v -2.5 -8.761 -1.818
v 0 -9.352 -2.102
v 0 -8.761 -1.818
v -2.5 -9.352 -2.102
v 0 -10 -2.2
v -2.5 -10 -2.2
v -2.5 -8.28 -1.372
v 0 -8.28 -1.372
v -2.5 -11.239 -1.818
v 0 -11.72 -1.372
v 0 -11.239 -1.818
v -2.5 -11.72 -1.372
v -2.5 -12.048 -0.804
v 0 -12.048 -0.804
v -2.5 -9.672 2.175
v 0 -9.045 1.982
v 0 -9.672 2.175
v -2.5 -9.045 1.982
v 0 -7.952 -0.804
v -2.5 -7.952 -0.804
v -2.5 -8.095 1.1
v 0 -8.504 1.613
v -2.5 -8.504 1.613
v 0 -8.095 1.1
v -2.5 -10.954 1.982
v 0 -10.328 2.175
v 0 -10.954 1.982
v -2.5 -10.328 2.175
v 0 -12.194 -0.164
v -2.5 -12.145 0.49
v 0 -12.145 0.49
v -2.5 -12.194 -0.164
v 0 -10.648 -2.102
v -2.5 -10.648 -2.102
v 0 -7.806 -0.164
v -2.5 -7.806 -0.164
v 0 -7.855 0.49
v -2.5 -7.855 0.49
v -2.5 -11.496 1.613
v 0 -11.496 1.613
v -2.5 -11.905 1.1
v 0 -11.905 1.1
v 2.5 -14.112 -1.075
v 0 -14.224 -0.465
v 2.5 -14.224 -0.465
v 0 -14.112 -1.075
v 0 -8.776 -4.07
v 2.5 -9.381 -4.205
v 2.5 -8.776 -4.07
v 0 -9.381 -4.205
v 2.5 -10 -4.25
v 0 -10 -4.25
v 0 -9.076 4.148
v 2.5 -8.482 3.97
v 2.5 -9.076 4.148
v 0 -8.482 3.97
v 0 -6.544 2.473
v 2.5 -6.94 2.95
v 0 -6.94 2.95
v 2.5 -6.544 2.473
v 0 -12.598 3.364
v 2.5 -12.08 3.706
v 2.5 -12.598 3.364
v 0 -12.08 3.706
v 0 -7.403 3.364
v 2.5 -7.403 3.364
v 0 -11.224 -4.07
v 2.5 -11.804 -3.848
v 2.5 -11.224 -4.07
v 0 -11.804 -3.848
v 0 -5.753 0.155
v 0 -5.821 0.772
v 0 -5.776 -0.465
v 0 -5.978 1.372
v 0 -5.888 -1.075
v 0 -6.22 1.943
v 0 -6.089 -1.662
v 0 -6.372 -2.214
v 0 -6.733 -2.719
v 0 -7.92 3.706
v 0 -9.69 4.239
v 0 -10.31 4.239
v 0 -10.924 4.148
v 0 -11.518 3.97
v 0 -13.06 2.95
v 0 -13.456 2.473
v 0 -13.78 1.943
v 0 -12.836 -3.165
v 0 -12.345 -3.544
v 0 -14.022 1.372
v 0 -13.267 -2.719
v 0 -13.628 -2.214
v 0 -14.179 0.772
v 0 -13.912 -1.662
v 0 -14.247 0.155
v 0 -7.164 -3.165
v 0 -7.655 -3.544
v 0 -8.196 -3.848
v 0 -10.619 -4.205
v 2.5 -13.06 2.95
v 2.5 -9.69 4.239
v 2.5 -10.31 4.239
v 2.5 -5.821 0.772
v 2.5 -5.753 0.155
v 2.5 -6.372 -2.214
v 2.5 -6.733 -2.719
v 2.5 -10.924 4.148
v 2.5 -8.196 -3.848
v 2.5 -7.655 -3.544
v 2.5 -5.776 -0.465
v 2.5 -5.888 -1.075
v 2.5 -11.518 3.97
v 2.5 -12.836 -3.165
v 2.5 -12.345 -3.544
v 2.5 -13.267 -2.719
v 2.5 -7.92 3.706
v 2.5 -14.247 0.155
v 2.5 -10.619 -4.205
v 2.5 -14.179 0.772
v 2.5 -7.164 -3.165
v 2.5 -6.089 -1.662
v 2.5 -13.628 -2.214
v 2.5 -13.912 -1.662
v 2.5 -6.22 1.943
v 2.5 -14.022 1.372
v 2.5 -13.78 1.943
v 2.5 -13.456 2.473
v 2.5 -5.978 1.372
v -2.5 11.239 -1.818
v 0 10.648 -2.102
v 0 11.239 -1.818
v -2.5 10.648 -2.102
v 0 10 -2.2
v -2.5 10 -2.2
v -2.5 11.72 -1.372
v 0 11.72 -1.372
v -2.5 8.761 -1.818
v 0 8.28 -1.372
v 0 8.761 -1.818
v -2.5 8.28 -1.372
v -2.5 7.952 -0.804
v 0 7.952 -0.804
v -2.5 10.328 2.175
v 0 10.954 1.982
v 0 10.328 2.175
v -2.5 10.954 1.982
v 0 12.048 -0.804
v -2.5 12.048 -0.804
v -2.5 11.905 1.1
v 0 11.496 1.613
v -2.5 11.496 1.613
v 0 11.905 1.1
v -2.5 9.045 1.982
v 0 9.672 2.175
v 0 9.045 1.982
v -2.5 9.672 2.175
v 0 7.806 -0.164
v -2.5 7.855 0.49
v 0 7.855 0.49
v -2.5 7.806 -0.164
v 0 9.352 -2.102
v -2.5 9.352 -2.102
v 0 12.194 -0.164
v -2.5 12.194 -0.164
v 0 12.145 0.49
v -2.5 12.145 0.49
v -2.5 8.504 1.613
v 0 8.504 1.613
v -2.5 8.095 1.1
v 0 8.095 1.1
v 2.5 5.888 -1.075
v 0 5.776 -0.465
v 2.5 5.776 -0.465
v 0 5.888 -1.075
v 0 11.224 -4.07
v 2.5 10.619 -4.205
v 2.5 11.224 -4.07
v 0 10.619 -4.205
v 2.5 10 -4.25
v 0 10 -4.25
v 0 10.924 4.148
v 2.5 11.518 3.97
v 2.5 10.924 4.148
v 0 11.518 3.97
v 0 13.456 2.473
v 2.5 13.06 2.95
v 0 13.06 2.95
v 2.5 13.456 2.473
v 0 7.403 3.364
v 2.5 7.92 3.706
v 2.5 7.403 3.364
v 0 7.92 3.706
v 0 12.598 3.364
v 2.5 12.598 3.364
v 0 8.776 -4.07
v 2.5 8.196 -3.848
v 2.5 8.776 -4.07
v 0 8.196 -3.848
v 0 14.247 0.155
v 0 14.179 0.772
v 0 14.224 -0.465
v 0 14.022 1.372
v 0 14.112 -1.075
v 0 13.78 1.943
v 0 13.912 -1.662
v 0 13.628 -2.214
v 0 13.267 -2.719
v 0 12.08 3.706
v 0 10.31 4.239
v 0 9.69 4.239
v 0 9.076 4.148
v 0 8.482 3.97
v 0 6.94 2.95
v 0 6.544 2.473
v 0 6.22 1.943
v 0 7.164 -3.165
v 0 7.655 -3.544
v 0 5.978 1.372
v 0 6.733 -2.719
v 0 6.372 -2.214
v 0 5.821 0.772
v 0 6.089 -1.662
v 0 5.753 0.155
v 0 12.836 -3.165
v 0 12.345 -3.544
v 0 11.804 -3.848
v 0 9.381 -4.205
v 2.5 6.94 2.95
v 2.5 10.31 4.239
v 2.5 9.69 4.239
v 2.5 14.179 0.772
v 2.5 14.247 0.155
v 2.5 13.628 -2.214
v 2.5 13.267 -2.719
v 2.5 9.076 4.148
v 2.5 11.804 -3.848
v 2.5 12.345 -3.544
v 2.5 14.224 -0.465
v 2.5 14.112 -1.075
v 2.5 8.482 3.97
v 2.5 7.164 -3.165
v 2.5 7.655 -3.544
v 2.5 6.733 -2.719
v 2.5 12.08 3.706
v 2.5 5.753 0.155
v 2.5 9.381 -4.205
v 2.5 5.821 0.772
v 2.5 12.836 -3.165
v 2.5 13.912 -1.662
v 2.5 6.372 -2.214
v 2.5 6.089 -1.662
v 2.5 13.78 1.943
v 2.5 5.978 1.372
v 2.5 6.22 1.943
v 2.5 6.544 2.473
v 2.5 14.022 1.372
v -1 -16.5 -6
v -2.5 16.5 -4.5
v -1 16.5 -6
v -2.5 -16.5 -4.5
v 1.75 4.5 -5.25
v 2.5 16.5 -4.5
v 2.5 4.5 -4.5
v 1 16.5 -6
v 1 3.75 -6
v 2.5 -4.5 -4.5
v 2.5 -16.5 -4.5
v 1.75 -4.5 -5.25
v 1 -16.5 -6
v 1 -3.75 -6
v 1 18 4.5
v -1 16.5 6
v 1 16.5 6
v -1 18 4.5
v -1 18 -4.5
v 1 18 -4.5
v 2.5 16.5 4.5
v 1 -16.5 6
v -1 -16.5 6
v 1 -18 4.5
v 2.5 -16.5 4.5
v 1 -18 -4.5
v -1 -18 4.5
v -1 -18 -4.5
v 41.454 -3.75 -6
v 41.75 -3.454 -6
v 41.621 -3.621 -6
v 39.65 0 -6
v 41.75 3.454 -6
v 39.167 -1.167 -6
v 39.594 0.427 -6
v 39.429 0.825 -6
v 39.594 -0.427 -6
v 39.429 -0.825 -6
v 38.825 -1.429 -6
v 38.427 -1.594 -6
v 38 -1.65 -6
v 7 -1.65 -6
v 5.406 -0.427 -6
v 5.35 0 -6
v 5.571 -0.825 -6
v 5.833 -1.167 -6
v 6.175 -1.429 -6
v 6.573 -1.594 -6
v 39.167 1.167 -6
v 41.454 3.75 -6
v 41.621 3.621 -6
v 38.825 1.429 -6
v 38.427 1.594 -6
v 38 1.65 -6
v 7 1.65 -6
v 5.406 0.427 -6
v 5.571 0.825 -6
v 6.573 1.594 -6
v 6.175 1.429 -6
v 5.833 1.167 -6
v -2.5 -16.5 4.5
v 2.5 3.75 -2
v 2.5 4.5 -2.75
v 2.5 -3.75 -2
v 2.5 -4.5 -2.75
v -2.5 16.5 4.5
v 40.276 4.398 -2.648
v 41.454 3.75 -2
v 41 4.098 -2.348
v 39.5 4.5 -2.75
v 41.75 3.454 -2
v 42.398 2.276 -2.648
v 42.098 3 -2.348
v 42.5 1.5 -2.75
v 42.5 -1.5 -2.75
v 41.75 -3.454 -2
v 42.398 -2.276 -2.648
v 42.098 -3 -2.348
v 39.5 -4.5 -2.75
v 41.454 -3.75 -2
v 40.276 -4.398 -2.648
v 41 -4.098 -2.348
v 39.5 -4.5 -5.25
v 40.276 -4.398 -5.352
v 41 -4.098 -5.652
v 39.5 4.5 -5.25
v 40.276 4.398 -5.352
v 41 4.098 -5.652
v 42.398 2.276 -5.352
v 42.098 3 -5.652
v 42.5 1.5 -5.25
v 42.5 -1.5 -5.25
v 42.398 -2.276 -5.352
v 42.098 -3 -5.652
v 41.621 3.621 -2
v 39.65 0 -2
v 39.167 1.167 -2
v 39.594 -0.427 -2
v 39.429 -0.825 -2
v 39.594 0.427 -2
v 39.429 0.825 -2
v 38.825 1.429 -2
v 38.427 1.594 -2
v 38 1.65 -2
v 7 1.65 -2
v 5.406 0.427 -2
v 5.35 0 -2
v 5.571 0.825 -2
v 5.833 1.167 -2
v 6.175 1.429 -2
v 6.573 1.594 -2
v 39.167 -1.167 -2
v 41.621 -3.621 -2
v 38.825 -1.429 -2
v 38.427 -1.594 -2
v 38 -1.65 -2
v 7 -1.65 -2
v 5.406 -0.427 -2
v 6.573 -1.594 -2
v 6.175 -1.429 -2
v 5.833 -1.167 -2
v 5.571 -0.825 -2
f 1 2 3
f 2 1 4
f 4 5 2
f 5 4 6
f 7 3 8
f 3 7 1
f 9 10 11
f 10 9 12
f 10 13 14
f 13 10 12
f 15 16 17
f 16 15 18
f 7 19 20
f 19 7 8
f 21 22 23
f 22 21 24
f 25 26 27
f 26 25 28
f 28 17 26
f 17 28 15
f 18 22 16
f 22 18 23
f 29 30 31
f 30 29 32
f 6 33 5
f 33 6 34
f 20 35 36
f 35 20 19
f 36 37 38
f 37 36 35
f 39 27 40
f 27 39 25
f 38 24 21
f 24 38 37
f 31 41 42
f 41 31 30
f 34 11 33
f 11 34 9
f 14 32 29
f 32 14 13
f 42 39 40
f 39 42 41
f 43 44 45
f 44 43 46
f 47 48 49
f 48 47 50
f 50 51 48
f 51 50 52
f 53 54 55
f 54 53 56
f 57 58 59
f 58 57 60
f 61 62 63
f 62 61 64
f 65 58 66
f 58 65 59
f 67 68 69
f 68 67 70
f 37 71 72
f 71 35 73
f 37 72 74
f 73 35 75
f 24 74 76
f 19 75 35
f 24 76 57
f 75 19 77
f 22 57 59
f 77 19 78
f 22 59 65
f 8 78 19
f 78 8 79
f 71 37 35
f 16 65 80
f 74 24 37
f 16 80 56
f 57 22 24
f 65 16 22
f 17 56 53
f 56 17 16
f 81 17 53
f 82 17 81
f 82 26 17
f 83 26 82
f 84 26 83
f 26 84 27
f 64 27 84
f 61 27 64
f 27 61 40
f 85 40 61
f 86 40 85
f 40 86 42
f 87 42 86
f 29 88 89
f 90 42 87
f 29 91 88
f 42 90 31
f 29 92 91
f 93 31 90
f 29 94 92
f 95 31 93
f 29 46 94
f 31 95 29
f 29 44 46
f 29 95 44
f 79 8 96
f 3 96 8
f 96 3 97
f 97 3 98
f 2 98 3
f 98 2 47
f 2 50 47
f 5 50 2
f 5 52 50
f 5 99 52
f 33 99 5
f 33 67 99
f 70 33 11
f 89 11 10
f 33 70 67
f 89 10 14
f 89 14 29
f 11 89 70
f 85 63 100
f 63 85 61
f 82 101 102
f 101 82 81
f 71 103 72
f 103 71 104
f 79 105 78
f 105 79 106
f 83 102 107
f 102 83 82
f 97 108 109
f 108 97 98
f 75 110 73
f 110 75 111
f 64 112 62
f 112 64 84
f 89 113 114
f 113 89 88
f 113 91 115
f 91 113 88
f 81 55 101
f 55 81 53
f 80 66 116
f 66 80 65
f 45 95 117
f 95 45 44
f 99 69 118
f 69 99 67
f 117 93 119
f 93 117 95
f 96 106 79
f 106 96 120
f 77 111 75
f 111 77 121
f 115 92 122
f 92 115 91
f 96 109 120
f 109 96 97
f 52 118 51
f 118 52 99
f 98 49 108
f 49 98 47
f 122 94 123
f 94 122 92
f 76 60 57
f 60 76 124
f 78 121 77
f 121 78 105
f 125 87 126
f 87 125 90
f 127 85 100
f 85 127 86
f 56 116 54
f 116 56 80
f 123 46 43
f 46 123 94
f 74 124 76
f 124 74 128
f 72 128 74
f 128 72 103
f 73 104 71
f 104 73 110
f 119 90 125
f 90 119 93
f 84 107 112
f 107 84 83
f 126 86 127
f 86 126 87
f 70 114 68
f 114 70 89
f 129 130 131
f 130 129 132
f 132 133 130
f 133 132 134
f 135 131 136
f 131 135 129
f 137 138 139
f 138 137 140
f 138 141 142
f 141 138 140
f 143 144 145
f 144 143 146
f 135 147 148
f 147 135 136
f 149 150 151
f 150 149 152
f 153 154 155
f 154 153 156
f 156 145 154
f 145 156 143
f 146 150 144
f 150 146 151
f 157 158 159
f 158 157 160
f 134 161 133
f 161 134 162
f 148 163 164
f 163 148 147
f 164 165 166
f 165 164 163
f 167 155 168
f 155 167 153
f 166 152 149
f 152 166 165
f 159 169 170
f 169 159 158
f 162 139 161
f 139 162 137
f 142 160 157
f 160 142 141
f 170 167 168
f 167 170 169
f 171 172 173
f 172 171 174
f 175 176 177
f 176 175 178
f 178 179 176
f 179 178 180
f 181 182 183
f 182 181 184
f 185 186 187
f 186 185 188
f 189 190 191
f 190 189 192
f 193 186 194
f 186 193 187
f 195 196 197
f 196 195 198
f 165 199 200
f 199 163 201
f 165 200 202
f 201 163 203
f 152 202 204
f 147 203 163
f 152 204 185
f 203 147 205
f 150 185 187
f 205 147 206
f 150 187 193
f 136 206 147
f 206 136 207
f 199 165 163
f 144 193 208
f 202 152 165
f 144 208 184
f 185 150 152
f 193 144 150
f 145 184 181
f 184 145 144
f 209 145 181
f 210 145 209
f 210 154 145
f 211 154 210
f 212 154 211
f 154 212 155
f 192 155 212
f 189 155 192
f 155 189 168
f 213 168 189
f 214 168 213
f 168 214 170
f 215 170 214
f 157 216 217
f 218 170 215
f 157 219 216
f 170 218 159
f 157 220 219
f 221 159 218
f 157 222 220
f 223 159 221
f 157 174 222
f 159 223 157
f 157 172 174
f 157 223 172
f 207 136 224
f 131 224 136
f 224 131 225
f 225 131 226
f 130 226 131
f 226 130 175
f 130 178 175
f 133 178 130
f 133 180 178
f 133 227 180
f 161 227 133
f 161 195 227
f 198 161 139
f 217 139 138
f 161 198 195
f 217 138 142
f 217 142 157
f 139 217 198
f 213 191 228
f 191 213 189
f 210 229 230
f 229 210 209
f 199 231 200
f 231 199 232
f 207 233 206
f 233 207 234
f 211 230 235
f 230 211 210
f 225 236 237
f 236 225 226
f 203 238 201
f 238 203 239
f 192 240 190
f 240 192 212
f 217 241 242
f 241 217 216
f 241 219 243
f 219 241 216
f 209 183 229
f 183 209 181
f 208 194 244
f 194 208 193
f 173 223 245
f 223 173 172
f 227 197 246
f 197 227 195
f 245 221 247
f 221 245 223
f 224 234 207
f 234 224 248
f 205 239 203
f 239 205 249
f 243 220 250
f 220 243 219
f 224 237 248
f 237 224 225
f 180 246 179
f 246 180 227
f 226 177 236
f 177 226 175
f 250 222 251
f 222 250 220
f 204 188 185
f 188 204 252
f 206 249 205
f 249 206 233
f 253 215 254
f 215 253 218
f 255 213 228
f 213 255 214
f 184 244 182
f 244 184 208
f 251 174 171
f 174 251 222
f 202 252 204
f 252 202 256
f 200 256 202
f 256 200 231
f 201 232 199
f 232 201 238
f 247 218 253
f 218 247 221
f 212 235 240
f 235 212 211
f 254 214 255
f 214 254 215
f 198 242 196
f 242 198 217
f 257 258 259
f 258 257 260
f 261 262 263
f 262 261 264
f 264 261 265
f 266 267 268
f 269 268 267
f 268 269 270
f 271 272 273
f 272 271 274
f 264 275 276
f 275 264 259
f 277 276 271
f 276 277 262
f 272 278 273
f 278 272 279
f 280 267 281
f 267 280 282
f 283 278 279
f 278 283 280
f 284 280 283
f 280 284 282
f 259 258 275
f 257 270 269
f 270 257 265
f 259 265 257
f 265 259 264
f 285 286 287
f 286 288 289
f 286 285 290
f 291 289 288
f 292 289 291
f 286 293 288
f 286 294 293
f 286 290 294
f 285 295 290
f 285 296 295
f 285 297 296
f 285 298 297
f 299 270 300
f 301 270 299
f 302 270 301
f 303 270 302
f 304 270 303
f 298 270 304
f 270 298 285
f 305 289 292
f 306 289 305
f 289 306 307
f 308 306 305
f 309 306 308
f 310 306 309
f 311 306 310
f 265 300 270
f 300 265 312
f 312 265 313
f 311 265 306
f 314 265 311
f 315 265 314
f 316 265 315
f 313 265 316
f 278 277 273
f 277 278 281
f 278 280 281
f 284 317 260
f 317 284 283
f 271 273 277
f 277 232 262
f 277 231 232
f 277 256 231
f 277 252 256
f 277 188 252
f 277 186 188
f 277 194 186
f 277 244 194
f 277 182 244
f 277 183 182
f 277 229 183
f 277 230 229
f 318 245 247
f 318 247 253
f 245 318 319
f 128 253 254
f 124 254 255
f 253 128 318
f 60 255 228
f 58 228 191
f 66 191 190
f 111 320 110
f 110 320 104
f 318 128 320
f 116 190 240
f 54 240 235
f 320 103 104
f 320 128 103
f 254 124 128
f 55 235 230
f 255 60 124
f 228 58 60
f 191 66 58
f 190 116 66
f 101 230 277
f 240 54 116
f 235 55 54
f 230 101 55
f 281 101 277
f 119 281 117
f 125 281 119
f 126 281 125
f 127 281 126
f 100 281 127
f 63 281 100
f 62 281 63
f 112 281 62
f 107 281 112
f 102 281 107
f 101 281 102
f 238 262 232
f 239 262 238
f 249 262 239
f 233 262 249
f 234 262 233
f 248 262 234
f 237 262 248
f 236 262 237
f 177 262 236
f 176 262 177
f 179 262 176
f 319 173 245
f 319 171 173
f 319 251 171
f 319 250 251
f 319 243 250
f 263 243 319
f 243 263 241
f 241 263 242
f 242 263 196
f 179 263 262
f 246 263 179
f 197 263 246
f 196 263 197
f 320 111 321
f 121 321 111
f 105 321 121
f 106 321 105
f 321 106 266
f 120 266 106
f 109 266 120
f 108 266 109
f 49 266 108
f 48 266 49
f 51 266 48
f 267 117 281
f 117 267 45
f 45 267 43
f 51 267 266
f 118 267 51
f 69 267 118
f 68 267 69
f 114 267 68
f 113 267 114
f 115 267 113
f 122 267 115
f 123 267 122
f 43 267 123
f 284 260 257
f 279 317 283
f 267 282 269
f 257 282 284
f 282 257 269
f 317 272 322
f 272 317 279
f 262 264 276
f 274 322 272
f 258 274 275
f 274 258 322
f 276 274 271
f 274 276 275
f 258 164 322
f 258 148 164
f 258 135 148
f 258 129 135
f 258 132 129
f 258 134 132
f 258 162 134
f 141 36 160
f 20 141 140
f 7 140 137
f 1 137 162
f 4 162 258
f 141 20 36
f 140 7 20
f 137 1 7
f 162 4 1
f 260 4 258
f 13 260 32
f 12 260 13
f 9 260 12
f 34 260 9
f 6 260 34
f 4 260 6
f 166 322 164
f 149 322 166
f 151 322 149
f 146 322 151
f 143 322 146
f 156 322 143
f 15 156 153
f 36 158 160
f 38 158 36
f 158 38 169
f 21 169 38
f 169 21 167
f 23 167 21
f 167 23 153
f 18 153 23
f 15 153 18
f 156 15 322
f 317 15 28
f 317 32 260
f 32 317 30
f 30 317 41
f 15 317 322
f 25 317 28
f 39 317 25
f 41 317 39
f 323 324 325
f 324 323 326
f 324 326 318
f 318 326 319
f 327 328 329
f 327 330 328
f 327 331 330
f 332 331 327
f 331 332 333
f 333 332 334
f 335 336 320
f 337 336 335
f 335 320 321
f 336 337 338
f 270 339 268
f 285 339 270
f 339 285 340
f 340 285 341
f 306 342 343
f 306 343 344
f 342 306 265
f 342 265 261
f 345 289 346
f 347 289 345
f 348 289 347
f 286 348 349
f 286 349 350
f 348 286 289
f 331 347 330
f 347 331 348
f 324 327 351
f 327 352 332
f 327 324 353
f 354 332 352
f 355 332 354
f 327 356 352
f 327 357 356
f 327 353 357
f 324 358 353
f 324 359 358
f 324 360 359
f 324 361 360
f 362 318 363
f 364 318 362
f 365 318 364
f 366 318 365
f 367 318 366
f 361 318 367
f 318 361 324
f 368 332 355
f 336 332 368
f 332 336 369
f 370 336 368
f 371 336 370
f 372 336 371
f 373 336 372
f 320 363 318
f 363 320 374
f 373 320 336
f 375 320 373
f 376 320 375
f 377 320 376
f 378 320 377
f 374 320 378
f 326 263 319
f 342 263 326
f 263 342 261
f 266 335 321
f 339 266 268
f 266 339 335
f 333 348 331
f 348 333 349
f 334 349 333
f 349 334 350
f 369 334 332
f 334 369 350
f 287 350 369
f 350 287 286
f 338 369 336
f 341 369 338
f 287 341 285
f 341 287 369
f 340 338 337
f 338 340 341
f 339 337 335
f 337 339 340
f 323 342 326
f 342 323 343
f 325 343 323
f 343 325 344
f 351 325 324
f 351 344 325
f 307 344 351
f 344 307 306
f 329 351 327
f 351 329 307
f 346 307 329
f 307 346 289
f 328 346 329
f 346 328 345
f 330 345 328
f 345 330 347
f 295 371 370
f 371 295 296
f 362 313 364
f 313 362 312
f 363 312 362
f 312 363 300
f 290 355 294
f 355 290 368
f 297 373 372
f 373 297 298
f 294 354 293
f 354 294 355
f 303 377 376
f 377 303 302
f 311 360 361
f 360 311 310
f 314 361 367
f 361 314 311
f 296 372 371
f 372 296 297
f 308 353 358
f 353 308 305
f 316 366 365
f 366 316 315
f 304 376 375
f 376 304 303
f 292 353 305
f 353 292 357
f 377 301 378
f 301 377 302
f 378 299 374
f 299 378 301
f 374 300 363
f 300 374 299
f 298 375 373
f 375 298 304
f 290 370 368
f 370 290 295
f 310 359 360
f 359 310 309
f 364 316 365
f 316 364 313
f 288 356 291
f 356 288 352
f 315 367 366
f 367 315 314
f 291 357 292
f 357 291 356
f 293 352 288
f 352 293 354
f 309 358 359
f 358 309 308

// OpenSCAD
//  Characters    Behavior
//     //            ignore, comment
//     $fa           minimum angle
//     *             disable
//     !             show only
//     #             highlight / debug
//     %             transparent / background
// http://www.openscad.org/cheatsheet/index.html

include <BOSL/constants.scad>
use <BOSL/masks.scad>
use <BOSL/math.scad>
use <BOSL/metric_screws.scad>
use <BOSL/shapes.scad>
use <BOSL/transforms.scad>

// Globals

convexity = 4;
number_of_fragments = 0.06 * 360;
eps = 0.001;

$fn = number_of_fragments;

hole_factor = 1.1;
no_head = 0;
chamfer = 1.5;

// Functions

// Modules

module notch(height, diameter, length)
{
    hull()
    {
        cylinder(h=height, d=diameter);
        translate([length, 0, 0])
            cylinder(h=height, d=diameter);
    }
}

// Objects

module mounting_bracket(
    length,
    width,
    thickness,
    metric_size
)
{
    let (
        hole_size = metric_size * hole_factor,
        cyl_move = max(length/2, width/2)
    )
    difference()
    {
        union()
        {
            // Main body
            difference()
            {
                color("yellowgreen")
                union()
                {
                    cuboid(
                        size = [length, width, thickness],
                        chamfer = chamfer
                    );
                }
            }
        }

        // Cut mounting holes
        color("lavender")
        union()
        {
            yspread(
                spacing = 20,
                n = 2
            )
            screw(
                screwsize = hole_size,
                screwlen = thickness,
                headsize = get_metric_socket_cap_diam(metric_size + 1),
                headlen = get_metric_socket_cap_height(metric_size + 1)
            );
        }
    }
}

module positioning_slot(
    length,
    width,
    thickness,
    metric_size
)
{
    difference()
    {
        union()
        {
            color("#EE88FF")
            cuboid(
                size = [length, width, thickness],
                chamfer = chamfer / 2,
                edges = EDGES_X_ALL + EDGES_Y_RT
            );
        }

        union()
        {
            slot(
                h = thickness,
                l = length - (3 * metric_size),
                d = metric_size * hole_factor
            );

            xmove(length / 2)
            yspread(width)
            fillet_mask_z(
                l = thickness,
                r = metric_size
            );
        }
    }
}

module rpi_cam_bracket(
    bracket_length,
    bracket_width,
    bracket_thickness,
    bracket_metric_size,
    slot_arm_length,
    slot_arm_width,
    slot_arm_thickness,
    slot_arm_metric_size
)
{
    yrot(90)
    mounting_bracket(
        length = bracket_length,
        width = bracket_width,
        thickness = bracket_thickness,
        metric_size = bracket_metric_size
    );

    xmove((bracket_thickness + slot_arm_length) / 2)
    zmove(-1 * ((bracket_length - slot_arm_thickness) / 2))
    positioning_slot(
        length = slot_arm_length,
        width = slot_arm_width,
        thickness = slot_arm_thickness,
        metric_size = slot_arm_metric_size
    );

    // Fill the chamfer on the bracket where
    // the slot arm touches
    color("#11FFAA")
    xmove((bracket_thickness - chamfer) / 2)
    zmove(-1 * ((bracket_length - slot_arm_thickness) / 2))
    cuboid(
        size = [bracket_thickness / 2, slot_arm_width - 0*chamfer, slot_arm_thickness],
        chamfer = chamfer / 2,
        edges = EDGES_X_ALL
    );
}

bracket_metric_size = 4;
bracket_thickness = 5;
bracket_width = 36;
bracket_length = 12;

*mounting_bracket(
    length = bracket_length,
    width = bracket_width,
    thickness = bracket_thickness,
    metric_size = bracket_metric_size
);

slot_arm_length = 40;
slot_arm_width = 9;
slot_arm_thickness = 4;
slot_arm_metric_size = 3;

*positioning_slot(
    length = slot_arm_length,
    width = slot_arm_width,
    thickness = slot_arm_thickness,
    metric_size = slot_arm_metric_size
);

rpi_cam_bracket(
    bracket_length,
    bracket_width,
    bracket_thickness,
    bracket_metric_size,
    slot_arm_length,
    slot_arm_width,
    slot_arm_thickness,
    slot_arm_metric_size
);
